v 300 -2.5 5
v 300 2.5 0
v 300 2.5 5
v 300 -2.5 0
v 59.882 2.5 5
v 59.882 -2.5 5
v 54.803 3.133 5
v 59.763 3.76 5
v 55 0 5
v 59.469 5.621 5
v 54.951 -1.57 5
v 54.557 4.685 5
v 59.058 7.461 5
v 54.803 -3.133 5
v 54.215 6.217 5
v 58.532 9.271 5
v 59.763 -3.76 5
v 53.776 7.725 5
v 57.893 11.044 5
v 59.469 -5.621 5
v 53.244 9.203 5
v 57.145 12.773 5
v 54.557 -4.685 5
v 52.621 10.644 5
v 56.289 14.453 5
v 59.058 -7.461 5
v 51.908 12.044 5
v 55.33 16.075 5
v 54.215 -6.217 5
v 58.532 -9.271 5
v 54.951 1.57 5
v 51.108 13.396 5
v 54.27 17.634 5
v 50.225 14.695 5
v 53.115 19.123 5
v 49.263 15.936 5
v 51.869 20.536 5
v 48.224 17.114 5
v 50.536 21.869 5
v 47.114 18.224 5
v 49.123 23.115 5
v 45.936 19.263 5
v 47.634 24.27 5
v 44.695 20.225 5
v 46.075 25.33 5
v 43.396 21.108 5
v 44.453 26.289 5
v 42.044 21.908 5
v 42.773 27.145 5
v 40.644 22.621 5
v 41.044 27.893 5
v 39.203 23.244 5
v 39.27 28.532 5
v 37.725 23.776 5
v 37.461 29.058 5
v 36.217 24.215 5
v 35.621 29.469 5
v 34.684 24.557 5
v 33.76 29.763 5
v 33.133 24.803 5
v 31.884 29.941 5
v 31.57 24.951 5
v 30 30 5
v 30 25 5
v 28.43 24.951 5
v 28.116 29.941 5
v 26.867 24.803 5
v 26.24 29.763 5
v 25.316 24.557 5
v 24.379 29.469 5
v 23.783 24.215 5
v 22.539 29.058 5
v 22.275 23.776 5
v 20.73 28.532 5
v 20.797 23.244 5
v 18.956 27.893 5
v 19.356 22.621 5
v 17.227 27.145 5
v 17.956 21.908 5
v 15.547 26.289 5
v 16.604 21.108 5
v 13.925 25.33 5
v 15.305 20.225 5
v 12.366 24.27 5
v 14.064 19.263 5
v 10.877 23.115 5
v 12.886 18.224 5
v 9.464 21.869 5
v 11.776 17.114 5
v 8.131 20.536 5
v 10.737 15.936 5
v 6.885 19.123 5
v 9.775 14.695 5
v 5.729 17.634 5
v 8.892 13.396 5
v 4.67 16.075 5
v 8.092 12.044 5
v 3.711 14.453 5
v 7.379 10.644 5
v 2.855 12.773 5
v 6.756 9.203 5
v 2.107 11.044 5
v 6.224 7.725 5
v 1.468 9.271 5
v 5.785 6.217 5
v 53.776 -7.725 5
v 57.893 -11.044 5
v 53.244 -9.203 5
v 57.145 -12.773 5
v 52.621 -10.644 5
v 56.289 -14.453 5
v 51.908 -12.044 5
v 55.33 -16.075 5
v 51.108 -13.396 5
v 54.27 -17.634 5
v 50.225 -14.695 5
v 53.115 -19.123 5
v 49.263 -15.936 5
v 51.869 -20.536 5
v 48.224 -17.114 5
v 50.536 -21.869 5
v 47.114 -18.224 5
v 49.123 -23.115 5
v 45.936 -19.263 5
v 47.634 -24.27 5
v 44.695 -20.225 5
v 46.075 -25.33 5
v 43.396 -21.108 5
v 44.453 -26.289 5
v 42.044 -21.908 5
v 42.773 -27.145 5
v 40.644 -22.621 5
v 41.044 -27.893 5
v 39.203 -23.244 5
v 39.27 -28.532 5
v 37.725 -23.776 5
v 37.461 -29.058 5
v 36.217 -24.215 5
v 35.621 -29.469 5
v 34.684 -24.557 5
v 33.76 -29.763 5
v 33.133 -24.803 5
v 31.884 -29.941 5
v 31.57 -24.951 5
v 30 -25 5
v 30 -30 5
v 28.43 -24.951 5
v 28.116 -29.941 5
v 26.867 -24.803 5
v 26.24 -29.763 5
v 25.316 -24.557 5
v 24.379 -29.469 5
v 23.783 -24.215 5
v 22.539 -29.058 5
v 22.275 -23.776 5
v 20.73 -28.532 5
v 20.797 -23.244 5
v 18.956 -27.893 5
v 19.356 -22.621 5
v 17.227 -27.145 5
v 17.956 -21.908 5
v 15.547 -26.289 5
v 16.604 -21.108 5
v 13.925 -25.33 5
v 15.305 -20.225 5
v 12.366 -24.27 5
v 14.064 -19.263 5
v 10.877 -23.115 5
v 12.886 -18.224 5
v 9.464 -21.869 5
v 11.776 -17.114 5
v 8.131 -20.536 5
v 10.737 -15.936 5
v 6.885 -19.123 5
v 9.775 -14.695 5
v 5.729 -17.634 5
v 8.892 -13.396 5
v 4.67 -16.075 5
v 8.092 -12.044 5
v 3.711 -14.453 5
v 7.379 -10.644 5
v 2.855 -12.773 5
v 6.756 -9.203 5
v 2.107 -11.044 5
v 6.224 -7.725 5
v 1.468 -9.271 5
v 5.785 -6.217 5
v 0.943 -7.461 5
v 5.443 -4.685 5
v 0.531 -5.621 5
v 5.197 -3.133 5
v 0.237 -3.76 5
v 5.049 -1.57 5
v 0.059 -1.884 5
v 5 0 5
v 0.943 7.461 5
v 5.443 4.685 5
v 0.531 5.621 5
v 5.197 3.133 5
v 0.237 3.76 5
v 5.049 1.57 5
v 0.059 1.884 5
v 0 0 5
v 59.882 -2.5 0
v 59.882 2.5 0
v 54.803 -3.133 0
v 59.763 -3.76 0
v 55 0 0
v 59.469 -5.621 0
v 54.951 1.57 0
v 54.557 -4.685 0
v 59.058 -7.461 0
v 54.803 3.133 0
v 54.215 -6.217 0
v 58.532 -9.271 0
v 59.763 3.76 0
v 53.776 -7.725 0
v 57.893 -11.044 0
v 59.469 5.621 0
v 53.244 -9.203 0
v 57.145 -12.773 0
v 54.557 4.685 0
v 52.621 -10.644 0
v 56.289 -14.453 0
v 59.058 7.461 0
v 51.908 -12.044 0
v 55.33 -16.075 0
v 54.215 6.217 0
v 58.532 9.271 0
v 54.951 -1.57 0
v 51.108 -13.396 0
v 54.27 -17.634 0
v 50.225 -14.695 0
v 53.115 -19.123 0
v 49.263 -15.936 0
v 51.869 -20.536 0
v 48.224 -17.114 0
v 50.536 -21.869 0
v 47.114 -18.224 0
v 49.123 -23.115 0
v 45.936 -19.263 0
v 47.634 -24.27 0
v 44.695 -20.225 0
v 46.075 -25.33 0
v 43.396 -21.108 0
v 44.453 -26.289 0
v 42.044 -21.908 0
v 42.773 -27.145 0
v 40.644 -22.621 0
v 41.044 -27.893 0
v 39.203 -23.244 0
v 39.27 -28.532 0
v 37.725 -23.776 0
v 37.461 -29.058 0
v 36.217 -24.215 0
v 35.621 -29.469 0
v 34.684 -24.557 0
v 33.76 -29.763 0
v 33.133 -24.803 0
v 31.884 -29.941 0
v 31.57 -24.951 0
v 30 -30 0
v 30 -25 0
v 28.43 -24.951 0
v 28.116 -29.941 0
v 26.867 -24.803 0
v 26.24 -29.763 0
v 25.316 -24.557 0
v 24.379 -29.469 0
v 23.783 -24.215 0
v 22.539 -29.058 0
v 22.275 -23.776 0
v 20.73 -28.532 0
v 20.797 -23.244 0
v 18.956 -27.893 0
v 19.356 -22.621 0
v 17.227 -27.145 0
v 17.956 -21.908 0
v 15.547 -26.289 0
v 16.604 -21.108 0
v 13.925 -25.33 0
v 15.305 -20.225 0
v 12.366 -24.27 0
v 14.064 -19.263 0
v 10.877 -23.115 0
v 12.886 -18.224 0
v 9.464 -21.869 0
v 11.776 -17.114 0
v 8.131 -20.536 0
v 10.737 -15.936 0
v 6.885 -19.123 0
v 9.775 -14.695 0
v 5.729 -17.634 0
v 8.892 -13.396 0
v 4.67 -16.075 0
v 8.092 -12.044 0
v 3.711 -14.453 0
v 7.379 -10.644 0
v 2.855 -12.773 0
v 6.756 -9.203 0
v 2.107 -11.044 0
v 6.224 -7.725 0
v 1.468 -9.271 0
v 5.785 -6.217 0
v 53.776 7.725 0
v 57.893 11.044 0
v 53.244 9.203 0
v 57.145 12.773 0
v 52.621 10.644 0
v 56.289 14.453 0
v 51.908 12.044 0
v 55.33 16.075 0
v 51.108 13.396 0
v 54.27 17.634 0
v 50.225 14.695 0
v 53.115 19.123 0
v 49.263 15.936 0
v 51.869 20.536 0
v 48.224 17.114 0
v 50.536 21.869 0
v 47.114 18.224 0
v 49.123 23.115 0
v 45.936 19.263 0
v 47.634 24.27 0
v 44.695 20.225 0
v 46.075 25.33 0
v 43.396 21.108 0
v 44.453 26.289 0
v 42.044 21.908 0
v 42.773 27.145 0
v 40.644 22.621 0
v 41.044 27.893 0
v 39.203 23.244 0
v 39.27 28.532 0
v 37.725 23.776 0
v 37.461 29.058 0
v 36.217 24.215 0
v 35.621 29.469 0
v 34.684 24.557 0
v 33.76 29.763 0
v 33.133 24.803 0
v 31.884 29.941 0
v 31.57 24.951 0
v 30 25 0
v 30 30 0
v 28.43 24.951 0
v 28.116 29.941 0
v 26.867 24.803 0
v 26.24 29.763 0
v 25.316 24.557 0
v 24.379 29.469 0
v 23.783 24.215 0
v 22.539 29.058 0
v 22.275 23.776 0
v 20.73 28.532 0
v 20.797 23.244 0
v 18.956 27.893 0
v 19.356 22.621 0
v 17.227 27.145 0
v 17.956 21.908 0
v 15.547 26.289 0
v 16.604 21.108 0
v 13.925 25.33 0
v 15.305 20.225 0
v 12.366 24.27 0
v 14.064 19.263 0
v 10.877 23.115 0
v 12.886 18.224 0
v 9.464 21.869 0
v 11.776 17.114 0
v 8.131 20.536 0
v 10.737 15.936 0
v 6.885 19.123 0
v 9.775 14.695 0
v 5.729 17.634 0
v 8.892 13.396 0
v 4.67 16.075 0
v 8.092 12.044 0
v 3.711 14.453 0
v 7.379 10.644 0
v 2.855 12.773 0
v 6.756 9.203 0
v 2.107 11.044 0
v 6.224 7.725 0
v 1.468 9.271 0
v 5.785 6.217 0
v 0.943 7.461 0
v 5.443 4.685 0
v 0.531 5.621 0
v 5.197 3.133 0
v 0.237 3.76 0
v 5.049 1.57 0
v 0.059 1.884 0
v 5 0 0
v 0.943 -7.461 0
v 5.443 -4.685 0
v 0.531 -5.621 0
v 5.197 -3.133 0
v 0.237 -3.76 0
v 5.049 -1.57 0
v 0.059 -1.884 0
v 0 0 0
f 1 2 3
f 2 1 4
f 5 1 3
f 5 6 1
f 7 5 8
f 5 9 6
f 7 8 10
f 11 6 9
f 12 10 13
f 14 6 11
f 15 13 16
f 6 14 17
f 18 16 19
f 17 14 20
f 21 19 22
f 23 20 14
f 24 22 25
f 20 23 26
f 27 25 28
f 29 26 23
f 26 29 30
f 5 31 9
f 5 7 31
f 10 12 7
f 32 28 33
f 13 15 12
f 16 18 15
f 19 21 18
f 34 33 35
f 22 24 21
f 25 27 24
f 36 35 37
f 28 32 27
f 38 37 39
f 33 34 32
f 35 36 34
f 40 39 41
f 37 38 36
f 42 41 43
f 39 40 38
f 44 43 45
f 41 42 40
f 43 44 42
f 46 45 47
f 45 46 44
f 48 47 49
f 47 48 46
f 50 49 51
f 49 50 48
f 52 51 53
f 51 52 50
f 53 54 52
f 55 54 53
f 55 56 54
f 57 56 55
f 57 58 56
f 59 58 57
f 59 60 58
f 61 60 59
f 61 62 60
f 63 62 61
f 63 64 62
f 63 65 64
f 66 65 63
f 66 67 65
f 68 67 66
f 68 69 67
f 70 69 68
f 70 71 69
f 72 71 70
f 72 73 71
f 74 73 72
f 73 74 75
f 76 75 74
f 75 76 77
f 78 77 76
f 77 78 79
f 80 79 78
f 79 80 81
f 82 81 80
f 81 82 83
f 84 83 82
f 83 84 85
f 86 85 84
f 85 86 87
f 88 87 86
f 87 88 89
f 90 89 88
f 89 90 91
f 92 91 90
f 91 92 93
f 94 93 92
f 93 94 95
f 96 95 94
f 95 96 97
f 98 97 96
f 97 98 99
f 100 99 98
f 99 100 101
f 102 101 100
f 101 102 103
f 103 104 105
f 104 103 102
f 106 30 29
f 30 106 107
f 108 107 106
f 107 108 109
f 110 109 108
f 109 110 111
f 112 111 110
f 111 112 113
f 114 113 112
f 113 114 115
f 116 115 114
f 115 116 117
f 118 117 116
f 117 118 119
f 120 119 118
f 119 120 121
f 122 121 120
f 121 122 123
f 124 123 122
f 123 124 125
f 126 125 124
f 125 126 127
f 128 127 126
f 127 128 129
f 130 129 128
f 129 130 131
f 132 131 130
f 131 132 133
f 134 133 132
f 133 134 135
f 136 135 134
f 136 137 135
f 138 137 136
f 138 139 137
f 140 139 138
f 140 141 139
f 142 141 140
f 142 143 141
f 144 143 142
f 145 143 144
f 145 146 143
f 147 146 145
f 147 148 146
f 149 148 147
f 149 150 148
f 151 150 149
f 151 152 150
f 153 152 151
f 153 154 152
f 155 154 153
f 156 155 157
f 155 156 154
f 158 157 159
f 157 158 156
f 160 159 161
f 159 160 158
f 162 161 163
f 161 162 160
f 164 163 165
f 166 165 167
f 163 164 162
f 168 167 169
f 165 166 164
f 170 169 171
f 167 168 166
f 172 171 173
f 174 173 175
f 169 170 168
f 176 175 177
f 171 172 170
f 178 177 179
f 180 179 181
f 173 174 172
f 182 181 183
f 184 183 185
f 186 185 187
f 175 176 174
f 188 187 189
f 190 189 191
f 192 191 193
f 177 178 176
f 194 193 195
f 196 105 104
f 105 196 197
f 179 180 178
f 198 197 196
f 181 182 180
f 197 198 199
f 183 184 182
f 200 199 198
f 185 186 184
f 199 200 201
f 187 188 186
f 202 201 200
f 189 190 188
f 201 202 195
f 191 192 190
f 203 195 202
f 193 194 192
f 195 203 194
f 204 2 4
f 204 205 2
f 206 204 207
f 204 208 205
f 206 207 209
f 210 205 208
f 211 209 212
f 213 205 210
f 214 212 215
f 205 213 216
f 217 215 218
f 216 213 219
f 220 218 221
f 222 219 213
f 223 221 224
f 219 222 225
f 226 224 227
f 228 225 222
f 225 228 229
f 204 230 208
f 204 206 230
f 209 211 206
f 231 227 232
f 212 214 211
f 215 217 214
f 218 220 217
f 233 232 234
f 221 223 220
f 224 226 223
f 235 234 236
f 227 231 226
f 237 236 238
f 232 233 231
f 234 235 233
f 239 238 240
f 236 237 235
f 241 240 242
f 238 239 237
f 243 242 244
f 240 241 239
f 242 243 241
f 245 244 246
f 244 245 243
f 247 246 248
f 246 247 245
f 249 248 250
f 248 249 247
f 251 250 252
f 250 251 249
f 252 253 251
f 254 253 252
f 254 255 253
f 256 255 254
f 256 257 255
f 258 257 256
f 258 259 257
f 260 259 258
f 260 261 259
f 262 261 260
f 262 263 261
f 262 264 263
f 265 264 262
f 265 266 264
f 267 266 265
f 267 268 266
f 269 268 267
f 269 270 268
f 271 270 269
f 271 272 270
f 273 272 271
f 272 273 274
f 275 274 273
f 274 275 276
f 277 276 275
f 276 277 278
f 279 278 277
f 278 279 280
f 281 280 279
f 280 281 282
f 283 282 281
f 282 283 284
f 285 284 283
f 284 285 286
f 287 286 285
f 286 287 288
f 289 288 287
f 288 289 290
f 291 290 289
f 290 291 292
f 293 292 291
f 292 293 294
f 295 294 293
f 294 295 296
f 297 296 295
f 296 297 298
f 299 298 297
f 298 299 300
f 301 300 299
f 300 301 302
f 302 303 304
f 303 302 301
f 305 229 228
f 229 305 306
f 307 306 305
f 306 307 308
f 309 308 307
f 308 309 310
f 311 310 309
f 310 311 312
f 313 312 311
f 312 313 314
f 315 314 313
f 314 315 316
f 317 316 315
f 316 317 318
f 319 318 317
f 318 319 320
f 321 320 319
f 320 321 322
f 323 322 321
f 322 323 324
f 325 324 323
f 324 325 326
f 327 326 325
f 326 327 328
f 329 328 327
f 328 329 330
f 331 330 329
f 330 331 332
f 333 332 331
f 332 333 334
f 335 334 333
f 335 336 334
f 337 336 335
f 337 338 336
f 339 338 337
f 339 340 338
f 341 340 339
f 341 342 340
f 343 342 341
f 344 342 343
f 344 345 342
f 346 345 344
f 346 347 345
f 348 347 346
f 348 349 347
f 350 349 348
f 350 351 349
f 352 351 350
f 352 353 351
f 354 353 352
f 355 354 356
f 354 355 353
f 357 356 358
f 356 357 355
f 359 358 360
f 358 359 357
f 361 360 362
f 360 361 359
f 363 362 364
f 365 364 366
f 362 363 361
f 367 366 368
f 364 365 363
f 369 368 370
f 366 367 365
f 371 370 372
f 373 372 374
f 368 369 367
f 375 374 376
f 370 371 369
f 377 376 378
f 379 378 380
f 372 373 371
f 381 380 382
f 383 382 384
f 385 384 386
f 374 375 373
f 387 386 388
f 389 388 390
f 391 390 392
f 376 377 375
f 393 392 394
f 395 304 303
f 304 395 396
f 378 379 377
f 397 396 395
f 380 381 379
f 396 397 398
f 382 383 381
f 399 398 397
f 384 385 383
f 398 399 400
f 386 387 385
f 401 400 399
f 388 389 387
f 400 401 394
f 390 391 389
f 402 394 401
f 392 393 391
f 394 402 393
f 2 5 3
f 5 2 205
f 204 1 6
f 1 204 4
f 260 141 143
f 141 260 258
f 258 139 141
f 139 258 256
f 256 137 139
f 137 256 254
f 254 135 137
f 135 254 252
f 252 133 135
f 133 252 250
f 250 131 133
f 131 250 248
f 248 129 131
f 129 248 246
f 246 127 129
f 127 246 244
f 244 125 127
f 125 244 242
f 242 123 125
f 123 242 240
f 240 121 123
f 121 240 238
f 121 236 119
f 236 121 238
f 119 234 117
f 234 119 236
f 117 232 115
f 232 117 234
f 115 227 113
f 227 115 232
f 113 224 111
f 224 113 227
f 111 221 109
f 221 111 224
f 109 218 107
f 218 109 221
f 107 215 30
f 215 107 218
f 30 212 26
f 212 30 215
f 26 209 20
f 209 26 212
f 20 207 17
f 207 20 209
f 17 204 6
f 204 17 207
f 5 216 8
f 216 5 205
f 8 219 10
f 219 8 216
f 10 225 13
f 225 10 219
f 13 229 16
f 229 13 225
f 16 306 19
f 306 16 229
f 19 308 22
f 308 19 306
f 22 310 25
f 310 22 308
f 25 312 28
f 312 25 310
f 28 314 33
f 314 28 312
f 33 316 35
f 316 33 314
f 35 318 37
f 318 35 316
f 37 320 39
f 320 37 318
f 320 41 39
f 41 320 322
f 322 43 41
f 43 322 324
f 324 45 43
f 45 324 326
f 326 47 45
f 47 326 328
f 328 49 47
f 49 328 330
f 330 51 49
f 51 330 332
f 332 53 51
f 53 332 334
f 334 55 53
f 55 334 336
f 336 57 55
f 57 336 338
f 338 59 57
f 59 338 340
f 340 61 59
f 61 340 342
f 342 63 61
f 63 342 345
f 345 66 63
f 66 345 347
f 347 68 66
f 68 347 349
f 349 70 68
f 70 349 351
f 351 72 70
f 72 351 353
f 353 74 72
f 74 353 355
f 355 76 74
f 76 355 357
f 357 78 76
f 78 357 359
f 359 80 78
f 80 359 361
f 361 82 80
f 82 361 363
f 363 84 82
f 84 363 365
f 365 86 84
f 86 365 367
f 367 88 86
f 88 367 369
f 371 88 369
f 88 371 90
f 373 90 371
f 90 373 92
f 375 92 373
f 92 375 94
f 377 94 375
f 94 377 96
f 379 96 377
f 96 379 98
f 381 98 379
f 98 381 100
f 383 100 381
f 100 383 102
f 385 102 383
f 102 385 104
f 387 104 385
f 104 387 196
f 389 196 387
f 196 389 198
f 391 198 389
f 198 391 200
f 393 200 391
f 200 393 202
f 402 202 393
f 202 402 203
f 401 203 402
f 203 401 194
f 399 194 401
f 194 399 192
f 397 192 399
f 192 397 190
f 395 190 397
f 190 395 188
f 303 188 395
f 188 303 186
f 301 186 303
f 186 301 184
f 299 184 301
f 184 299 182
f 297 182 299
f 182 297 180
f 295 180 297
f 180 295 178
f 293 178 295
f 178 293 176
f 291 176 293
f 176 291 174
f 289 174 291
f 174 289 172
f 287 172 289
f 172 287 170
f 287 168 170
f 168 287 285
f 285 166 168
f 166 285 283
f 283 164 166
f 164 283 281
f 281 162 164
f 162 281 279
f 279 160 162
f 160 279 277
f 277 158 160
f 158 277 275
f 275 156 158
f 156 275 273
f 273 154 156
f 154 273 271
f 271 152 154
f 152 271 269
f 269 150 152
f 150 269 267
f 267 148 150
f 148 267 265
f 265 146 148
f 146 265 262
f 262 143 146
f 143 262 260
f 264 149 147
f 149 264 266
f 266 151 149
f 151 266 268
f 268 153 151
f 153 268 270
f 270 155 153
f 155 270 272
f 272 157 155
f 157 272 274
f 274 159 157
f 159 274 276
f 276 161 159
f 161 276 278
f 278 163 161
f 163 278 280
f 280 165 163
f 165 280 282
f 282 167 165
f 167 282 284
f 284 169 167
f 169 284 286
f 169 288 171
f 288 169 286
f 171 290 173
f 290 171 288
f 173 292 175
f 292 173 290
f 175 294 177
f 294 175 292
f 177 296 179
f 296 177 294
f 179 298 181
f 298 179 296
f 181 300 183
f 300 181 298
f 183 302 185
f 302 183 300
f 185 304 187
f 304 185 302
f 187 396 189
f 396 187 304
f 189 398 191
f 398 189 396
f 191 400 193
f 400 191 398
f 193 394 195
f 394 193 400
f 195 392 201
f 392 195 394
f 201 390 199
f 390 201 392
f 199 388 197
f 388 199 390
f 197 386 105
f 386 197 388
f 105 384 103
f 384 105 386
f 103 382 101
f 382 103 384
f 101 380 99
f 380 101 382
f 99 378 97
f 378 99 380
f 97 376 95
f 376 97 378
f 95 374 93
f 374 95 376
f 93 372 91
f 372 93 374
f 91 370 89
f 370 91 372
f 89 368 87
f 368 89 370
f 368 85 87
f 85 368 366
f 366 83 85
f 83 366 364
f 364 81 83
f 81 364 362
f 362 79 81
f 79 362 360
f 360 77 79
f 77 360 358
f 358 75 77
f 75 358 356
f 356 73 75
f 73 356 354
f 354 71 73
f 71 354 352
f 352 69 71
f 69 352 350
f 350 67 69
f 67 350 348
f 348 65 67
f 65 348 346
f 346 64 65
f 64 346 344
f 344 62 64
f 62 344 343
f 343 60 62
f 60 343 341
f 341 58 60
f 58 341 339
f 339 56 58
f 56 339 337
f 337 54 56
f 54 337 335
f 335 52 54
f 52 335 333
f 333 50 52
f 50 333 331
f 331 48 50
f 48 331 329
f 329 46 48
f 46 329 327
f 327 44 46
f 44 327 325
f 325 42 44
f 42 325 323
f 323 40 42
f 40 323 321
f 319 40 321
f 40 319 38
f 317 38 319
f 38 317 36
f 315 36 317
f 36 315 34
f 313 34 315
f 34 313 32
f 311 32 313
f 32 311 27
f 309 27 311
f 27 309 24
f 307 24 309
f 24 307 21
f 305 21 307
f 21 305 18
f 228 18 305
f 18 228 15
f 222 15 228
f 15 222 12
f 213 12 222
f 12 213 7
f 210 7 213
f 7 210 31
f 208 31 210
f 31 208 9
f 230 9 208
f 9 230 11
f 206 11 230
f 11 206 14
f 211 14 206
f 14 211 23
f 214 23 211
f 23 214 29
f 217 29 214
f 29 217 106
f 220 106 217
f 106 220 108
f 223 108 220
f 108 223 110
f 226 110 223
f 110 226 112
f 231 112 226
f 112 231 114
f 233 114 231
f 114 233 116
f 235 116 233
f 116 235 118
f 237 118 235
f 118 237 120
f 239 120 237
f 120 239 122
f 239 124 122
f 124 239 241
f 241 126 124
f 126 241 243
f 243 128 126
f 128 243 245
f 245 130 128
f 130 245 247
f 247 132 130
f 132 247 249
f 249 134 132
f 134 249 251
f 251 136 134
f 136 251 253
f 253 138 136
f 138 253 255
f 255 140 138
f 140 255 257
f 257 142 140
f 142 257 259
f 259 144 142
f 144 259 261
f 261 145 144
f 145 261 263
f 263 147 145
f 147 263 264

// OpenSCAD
//Units: mm
requiredProbeLength = 300;
sensorHoleDiameterInner = 50;
thickness = 5;


sensorHoleDiameterOuter = sensorHoleDiameterInner + 2*thickness;
adjustedProbeLength = requiredProbeLength - sensorHoleDiameterOuter;
sensorHoleOverlap = thickness;

translate([sensorHoleDiameterOuter-sensorHoleOverlap, -thickness/2])
cube([adjustedProbeLength+sensorHoleOverlap, thickness, thickness]);

translate([sensorHoleDiameterOuter/2, 0])
linear_extrude(thickness) {
     difference() {
          $fn = 100;
          circle(d = sensorHoleDiameterOuter);
          circle(d = sensorHoleDiameterInner);
     }
}
